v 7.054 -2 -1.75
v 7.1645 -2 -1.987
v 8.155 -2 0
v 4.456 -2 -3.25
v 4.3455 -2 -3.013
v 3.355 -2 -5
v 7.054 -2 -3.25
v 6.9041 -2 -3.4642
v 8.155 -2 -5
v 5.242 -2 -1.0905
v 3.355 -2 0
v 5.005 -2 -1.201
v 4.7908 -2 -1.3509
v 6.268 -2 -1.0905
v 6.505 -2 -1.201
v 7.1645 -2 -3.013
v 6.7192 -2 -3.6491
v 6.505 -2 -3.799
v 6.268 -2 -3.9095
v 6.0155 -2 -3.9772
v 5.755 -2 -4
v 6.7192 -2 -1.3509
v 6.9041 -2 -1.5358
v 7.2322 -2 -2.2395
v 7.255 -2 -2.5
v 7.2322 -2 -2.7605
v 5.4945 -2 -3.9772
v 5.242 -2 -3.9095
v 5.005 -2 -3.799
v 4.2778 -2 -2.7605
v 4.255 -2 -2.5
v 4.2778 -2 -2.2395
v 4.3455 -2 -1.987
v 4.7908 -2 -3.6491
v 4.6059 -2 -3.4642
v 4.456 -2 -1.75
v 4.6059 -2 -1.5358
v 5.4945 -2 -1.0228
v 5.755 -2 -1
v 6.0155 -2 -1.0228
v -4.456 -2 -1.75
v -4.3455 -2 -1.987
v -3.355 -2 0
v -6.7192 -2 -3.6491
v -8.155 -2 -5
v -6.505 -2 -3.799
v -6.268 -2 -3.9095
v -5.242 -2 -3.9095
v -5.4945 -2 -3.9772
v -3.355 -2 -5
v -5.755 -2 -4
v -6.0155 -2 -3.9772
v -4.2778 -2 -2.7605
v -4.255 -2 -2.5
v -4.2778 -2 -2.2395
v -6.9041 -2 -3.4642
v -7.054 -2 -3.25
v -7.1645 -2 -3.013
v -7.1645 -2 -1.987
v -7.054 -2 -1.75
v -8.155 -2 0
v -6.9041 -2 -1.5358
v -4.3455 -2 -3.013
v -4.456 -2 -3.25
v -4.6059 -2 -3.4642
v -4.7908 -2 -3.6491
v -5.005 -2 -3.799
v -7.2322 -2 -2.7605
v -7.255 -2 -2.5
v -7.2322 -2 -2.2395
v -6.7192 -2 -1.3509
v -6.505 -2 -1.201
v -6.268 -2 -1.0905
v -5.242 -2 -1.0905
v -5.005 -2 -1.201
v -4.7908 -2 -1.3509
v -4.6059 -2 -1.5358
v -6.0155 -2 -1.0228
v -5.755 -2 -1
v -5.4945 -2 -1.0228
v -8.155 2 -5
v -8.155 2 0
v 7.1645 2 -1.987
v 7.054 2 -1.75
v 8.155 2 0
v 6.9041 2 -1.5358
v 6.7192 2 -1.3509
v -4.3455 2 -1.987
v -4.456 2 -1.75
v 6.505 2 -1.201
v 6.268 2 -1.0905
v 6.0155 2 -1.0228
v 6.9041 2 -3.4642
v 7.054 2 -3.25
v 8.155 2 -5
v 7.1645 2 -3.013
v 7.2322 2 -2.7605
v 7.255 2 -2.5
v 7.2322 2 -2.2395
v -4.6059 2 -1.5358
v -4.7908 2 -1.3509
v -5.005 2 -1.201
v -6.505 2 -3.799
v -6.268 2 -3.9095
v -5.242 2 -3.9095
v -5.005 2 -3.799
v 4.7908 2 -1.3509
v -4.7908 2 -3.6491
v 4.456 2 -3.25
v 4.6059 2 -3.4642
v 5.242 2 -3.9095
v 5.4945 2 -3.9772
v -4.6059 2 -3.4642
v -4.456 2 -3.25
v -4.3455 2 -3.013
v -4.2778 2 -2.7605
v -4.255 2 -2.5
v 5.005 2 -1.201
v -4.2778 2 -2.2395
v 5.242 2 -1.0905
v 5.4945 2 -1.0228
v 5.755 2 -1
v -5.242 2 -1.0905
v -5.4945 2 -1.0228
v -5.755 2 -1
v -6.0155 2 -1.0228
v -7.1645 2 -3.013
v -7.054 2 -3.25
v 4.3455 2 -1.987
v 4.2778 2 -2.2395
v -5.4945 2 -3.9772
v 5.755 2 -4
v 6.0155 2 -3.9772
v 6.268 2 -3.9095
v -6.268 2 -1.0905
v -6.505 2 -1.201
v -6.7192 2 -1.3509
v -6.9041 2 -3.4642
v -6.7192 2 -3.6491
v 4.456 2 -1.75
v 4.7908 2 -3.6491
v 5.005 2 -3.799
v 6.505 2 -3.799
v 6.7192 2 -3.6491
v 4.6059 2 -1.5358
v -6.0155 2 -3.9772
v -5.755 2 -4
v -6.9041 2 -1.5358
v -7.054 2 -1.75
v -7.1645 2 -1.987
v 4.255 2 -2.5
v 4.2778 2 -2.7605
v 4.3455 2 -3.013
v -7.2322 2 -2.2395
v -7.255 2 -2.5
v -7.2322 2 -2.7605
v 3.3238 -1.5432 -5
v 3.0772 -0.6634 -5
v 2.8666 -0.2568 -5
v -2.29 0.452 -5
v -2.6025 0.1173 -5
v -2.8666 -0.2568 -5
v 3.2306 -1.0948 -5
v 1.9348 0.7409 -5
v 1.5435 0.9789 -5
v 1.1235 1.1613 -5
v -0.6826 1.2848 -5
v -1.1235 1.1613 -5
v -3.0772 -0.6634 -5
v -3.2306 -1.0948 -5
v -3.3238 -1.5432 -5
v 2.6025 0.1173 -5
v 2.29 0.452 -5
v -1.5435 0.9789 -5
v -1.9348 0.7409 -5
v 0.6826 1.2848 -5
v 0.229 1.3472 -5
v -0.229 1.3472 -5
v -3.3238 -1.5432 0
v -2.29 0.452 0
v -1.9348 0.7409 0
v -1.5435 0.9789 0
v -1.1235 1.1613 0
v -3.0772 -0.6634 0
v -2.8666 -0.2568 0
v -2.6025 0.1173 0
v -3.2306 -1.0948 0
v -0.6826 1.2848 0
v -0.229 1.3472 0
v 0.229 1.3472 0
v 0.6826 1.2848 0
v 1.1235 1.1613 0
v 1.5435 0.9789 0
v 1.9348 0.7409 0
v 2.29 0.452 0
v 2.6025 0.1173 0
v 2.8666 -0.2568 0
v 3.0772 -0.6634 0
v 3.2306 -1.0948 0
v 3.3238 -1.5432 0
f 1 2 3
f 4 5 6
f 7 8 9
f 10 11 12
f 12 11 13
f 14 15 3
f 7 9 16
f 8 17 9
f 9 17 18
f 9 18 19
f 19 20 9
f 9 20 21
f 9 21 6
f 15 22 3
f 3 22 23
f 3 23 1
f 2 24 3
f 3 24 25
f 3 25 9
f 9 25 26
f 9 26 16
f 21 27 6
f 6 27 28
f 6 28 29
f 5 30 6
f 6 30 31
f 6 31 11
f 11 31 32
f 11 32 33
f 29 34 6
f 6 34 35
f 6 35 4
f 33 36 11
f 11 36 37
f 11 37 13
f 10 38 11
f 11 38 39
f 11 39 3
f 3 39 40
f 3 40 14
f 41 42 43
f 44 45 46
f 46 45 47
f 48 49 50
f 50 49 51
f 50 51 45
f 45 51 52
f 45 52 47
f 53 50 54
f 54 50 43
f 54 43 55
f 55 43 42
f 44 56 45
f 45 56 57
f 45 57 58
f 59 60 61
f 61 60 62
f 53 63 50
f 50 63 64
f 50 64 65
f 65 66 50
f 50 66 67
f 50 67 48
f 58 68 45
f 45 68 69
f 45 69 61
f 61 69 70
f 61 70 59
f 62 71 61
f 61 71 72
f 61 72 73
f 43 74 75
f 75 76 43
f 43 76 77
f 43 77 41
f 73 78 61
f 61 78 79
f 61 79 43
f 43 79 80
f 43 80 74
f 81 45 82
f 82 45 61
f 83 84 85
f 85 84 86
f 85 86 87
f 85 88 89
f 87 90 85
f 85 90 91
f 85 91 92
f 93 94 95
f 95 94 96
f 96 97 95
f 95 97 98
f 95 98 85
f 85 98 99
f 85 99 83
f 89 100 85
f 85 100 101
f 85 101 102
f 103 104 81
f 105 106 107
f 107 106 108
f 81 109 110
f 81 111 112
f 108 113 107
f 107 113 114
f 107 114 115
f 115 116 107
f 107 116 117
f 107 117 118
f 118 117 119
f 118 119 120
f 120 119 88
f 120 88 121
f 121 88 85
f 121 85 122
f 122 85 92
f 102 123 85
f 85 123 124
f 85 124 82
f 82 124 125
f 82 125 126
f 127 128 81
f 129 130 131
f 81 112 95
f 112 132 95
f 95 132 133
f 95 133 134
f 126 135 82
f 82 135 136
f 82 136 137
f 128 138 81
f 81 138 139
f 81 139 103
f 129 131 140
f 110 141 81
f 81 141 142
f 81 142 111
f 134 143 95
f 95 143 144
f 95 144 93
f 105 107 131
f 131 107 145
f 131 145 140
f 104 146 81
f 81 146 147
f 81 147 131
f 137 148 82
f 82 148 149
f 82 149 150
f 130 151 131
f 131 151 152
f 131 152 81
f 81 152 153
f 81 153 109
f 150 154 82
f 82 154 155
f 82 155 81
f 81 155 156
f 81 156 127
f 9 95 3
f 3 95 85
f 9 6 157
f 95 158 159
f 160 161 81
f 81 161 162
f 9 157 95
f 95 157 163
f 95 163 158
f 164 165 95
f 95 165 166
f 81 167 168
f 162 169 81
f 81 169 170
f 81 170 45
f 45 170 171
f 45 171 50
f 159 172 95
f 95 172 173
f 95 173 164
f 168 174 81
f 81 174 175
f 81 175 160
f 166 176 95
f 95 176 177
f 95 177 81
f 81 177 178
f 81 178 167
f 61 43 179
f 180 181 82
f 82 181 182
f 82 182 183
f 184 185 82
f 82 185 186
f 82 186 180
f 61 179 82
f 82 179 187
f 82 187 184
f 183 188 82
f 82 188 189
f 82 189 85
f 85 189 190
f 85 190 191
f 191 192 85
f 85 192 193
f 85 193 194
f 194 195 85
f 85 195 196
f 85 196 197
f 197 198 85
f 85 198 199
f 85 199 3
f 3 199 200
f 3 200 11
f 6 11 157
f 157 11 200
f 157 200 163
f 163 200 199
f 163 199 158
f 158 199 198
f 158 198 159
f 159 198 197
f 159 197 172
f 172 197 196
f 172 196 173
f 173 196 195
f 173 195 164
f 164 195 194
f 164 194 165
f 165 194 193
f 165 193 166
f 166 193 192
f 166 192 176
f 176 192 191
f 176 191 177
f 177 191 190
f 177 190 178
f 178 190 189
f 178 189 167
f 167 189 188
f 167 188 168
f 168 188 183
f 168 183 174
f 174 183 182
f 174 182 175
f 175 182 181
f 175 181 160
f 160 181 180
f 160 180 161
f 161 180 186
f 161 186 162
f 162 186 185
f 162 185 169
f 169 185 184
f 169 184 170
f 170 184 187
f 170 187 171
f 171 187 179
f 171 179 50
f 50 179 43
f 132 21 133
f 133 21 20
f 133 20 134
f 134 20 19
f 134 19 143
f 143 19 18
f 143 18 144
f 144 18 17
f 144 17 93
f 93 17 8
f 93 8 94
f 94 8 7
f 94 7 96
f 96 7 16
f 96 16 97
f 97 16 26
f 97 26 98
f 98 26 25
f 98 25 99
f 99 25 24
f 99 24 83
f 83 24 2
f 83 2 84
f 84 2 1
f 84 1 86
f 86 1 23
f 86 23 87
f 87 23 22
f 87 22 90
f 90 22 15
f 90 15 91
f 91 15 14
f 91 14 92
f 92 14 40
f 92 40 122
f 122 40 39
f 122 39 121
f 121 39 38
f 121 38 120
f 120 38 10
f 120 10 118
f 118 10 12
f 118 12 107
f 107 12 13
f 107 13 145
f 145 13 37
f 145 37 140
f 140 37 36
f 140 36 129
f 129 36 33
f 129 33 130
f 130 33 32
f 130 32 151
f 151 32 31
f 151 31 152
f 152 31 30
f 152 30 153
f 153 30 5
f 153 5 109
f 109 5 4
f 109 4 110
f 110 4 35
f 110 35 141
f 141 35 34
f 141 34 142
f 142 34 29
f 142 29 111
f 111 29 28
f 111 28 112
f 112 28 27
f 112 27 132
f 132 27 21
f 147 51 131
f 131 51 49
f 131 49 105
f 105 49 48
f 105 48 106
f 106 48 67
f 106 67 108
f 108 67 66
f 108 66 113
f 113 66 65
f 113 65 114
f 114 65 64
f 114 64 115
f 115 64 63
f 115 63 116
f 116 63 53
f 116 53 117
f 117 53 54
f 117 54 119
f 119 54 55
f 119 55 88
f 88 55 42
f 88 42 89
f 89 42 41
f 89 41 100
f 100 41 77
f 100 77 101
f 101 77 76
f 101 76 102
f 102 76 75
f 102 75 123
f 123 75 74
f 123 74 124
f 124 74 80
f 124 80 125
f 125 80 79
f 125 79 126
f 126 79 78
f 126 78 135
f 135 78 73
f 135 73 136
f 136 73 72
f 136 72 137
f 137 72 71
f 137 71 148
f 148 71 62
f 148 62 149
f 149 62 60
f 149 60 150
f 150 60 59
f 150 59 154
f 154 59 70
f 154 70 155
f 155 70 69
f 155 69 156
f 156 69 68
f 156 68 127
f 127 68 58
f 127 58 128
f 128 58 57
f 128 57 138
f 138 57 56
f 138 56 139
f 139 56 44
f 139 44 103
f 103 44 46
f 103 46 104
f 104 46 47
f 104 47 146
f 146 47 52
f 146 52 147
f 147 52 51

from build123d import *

# Parameters (mm, degrees)
SKETCH1_W                = 16.31
SKETCH1_H                = 4
BOSS_EXTRUDE3_DEPTH      = 5
CUT_EXTRUDE9_DEPTH       = 5
SKETCH4_R                = 1.5
CUT_EXTRUDE10_DEPTH      = 2.5
CUT_EXTRUDE10_DEPTH_BACK = 2.5


with BuildPart() as part:
    # Sketch1 → Boss-Extrude3 (new body)
    with BuildSketch(Plane.XY):
        Rectangle(SKETCH1_W, SKETCH1_H)
    extrude(amount=-BOSS_EXTRUDE3_DEPTH)

    # Sketch3 → Cut-Extrude9 (cut)
    with BuildSketch(Plane.XY):
        with BuildLine():
            Line((-3.355, -2), (3.355, -2))
            ThreePointArc((3.355, -2), (0, 1.355), (-3.355, -2))
        make_face()
    extrude(amount=-CUT_EXTRUDE9_DEPTH, mode=Mode.SUBTRACT)

    # Sketch4 → Cut-Extrude10 (cut, two sides)
    with BuildSketch(Plane(origin=(0, 0, 0), x_dir=(1, 0, 0), z_dir=(0, 1, 0))) as cut_extrude10_sk:
        with Locations((-5.755, 2.5)):
            Circle(SKETCH4_R)
        with Locations((5.755, 2.5)):
            Circle(SKETCH4_R)
    extrude(amount=CUT_EXTRUDE10_DEPTH, mode=Mode.SUBTRACT)
    extrude(cut_extrude10_sk.sketch, amount=-CUT_EXTRUDE10_DEPTH_BACK, mode=Mode.SUBTRACT)


solid = part.part
